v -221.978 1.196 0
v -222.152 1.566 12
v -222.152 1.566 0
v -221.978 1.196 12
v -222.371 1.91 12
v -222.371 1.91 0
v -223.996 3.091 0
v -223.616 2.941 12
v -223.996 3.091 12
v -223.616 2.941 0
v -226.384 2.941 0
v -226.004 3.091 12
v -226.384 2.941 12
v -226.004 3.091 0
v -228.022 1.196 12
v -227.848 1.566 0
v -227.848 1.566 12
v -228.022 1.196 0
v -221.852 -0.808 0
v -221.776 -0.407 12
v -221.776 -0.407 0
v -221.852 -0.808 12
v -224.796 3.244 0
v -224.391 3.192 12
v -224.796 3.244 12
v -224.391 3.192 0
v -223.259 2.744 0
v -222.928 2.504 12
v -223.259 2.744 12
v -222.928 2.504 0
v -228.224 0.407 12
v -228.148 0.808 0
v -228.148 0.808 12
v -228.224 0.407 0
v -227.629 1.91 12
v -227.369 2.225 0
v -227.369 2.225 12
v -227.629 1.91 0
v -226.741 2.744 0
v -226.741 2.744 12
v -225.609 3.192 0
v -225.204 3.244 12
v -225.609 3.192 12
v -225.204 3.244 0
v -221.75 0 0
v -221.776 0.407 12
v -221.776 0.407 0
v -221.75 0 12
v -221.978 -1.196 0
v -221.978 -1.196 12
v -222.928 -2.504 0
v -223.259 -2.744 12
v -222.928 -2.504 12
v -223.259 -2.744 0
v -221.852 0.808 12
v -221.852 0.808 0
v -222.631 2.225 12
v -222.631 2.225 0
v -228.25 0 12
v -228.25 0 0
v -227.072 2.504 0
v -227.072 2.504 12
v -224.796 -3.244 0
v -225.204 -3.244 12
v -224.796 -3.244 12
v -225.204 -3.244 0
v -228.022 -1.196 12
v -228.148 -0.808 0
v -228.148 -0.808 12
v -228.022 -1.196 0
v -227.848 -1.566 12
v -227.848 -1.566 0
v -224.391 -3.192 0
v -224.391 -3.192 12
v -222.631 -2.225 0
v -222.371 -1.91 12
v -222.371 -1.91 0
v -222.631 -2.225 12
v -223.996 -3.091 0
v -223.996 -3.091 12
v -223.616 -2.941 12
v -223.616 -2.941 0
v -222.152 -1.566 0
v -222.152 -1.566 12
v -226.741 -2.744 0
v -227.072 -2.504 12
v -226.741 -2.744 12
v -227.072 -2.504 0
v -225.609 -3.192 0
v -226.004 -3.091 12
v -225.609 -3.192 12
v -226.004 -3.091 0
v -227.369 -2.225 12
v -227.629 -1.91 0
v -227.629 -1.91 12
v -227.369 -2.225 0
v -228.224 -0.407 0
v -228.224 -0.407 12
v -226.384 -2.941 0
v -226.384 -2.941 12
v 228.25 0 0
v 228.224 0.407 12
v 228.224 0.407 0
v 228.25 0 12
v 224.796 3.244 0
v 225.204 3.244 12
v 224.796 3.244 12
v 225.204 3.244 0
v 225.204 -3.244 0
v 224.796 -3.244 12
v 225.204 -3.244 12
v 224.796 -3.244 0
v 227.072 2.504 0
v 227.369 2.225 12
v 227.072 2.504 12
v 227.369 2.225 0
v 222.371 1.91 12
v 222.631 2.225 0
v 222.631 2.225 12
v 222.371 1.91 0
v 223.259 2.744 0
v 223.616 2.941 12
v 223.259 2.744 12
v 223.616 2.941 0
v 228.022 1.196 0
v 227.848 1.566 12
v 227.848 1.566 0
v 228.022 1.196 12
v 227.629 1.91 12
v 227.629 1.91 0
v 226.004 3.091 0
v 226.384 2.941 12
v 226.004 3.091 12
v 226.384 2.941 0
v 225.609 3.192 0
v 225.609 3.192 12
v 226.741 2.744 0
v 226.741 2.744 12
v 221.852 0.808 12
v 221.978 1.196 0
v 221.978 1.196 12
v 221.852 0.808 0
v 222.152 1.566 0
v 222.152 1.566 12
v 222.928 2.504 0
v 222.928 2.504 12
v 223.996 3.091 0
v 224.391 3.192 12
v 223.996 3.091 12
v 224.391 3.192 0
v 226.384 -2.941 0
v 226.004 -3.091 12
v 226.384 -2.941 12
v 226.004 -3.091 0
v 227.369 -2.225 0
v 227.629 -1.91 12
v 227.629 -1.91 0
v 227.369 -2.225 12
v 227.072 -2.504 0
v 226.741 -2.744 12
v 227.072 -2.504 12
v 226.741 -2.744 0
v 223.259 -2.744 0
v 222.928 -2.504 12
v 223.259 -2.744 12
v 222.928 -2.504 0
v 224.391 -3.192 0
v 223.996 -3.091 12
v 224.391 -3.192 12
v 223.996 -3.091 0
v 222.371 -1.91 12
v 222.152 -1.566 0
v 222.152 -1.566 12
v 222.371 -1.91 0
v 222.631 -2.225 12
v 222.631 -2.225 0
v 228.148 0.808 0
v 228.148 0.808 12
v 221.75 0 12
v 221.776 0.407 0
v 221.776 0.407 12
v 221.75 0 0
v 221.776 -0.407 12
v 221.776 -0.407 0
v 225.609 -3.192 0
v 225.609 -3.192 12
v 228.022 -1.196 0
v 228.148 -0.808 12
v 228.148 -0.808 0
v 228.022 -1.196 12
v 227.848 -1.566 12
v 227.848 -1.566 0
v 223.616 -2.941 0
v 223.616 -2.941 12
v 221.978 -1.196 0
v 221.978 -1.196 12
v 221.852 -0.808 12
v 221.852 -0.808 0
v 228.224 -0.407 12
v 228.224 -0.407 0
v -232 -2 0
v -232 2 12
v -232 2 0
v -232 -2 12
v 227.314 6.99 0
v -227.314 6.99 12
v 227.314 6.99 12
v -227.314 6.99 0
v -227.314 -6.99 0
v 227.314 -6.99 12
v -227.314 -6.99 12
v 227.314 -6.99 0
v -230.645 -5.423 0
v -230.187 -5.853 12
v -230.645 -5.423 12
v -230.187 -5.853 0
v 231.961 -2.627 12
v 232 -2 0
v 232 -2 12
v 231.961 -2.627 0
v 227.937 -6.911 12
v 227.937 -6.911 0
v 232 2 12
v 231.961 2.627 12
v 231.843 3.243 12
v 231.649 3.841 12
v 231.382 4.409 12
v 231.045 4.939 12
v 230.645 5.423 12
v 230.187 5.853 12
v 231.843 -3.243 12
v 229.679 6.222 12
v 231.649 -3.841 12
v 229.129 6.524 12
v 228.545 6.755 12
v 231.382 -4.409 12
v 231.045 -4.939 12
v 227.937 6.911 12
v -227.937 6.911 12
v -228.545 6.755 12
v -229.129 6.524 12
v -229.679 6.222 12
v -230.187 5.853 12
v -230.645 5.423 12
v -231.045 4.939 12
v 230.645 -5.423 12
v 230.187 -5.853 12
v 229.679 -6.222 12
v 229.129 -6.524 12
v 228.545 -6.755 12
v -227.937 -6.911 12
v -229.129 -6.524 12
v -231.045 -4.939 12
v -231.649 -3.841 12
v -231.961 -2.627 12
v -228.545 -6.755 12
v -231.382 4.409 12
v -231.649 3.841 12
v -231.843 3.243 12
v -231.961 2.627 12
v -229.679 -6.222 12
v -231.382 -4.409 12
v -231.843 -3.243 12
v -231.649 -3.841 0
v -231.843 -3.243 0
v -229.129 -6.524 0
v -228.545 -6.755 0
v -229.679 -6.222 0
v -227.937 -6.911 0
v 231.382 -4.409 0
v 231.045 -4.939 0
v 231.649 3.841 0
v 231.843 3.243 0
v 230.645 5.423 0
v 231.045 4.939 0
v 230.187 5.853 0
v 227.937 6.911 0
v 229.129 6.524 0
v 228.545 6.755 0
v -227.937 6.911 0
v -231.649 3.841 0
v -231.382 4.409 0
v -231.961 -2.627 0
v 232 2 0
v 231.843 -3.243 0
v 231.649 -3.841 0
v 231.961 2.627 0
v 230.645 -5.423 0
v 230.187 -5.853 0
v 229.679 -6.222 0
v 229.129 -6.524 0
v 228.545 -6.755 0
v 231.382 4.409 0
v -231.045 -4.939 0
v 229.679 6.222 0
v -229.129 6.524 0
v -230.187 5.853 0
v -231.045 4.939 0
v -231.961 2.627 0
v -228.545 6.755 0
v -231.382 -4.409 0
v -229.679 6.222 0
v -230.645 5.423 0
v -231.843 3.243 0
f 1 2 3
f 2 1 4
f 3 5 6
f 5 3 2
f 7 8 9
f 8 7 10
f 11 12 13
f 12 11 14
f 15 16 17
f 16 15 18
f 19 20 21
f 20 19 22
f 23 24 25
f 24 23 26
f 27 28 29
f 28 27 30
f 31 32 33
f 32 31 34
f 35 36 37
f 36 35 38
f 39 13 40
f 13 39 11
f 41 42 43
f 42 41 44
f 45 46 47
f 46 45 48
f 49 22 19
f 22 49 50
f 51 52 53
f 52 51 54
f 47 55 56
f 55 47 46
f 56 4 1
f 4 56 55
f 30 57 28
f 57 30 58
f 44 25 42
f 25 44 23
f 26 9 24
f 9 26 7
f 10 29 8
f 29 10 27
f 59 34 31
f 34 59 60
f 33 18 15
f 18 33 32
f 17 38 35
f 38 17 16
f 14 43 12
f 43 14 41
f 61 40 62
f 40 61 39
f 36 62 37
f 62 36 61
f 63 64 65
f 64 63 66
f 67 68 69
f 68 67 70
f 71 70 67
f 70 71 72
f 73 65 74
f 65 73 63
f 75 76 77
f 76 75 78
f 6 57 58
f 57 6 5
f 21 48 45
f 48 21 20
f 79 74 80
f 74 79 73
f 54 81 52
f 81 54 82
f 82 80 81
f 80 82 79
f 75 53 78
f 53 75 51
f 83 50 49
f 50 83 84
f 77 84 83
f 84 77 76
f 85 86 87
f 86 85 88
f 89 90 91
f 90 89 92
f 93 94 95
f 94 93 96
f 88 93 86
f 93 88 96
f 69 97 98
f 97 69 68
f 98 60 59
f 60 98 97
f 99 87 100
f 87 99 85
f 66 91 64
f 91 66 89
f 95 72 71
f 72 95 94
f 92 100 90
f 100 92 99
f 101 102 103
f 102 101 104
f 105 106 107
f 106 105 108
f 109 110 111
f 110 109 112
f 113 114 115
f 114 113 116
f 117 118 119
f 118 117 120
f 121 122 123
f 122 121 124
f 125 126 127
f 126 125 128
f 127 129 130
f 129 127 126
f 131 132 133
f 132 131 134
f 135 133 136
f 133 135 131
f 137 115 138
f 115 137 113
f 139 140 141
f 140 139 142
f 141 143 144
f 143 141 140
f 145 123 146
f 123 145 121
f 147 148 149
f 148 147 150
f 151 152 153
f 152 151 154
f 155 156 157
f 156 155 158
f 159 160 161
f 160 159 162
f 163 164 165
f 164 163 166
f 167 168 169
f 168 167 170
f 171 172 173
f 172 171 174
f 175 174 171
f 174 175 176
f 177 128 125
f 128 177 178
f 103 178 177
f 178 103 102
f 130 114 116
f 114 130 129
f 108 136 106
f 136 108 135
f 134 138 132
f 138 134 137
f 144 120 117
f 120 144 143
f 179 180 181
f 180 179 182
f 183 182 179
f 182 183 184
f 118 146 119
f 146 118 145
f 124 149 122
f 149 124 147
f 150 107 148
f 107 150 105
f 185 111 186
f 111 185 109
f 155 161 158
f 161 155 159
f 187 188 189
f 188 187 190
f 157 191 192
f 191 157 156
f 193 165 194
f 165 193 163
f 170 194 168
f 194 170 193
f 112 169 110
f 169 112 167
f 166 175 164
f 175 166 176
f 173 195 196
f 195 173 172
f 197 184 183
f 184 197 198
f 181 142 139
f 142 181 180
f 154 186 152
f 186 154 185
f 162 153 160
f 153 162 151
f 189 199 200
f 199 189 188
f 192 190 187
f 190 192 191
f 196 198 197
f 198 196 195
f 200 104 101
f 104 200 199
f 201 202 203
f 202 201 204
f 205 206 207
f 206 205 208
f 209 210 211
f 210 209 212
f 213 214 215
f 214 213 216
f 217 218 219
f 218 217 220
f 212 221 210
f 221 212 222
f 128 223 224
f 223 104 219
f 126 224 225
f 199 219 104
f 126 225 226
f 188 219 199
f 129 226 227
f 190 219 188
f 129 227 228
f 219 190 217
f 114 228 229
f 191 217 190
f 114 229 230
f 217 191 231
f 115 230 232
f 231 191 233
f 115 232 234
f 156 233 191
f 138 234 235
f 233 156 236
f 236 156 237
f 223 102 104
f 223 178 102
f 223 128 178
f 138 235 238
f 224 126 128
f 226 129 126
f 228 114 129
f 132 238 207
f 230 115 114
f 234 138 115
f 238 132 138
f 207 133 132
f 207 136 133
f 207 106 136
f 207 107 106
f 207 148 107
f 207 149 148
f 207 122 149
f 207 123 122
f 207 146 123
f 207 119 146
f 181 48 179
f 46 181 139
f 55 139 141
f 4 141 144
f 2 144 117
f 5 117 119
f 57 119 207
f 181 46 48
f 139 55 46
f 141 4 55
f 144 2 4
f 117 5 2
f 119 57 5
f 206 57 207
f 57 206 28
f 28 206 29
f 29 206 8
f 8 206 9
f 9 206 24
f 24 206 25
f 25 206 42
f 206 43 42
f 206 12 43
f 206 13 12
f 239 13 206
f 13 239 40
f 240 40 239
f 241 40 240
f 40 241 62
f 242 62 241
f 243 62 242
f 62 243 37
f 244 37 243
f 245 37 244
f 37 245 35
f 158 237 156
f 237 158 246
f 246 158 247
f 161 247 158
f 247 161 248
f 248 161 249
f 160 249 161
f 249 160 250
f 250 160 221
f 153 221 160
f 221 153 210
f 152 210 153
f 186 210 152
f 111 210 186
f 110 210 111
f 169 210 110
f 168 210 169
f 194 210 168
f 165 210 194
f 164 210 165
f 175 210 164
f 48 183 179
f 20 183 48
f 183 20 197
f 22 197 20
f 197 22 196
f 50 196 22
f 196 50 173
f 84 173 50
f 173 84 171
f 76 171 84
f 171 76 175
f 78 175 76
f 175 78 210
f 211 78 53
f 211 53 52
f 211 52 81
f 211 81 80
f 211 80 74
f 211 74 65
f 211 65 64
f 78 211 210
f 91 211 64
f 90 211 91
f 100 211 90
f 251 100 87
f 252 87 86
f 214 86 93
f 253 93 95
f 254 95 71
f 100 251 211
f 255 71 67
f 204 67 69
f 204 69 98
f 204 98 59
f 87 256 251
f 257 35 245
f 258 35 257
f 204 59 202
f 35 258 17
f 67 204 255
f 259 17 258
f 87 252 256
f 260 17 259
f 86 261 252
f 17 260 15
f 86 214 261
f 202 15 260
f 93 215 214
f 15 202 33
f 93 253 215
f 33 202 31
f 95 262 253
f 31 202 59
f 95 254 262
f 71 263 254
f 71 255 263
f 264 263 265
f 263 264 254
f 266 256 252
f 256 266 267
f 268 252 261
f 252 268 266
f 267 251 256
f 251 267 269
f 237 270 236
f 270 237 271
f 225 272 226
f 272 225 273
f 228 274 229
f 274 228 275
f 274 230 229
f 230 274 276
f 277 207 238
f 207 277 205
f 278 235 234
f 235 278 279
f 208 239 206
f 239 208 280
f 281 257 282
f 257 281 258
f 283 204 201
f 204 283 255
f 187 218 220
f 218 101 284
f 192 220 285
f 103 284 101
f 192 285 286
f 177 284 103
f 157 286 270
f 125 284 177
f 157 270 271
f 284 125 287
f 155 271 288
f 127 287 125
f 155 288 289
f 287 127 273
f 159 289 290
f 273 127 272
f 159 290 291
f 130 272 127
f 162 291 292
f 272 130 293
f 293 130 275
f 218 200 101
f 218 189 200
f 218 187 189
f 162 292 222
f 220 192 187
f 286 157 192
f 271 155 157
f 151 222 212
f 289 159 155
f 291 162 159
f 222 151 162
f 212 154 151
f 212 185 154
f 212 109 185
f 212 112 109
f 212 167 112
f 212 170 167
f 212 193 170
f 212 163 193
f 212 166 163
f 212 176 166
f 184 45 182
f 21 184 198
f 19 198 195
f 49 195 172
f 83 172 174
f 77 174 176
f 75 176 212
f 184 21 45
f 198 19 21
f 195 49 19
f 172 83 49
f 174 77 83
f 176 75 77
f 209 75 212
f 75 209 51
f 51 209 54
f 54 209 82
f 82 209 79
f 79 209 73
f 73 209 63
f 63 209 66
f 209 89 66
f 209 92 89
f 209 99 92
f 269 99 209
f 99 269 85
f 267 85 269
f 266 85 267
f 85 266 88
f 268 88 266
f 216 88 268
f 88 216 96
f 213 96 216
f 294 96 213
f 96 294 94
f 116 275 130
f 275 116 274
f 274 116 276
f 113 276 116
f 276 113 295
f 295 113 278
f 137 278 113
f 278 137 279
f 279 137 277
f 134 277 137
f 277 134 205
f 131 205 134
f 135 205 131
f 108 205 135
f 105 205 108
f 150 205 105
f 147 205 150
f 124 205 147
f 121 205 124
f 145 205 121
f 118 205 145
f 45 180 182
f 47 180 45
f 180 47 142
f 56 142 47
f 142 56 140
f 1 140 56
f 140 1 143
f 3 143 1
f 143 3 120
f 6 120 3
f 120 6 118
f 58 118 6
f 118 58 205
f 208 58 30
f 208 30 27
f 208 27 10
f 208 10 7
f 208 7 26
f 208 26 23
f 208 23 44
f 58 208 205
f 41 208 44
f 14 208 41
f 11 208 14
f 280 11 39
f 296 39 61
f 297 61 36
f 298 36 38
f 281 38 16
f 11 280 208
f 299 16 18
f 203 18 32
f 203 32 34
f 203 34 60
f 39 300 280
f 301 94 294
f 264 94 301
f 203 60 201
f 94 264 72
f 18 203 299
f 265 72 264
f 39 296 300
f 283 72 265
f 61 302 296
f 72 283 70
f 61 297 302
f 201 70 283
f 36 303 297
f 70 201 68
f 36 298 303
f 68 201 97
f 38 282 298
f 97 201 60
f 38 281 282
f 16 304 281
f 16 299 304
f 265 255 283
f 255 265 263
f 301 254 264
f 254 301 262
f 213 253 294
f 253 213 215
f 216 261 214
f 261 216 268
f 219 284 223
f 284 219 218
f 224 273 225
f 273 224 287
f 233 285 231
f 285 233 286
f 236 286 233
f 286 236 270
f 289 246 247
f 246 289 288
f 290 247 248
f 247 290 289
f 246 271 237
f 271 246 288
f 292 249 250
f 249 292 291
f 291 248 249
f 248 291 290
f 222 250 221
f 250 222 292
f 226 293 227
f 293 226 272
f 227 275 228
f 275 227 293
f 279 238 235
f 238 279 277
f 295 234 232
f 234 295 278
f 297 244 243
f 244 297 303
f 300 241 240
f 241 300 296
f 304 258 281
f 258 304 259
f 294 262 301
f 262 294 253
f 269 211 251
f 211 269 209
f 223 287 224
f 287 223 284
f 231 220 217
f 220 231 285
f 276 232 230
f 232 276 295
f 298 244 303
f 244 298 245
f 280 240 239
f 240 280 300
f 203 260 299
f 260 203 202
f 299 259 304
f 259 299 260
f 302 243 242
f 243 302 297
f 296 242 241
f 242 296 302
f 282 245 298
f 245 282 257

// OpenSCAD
$fn = 50;


difference() {
	union() {
		hull() {
			translate(v = [-227.0000000000, 2.0000000000, 0]) {
				cylinder(h = 12, r = 5);
			}
			translate(v = [227.0000000000, 2.0000000000, 0]) {
				cylinder(h = 12, r = 5);
			}
			translate(v = [-227.0000000000, -2.0000000000, 0]) {
				cylinder(h = 12, r = 5);
			}
			translate(v = [227.0000000000, -2.0000000000, 0]) {
				cylinder(h = 12, r = 5);
			}
		}
	}
	union() {
		translate(v = [-225.0000000000, 0.0000000000, -100.0000000000]) {
			cylinder(h = 200, r = 3.2500000000);
		}
		translate(v = [-225.0000000000, 0.0000000000, -100.0000000000]) {
			cylinder(h = 200, r = 3.2500000000);
		}
		translate(v = [225.0000000000, 0.0000000000, -100.0000000000]) {
			cylinder(h = 200, r = 3.2500000000);
		}
		translate(v = [225.0000000000, 0.0000000000, -100.0000000000]) {
			cylinder(h = 200, r = 3.2500000000);
		}
	}
}
